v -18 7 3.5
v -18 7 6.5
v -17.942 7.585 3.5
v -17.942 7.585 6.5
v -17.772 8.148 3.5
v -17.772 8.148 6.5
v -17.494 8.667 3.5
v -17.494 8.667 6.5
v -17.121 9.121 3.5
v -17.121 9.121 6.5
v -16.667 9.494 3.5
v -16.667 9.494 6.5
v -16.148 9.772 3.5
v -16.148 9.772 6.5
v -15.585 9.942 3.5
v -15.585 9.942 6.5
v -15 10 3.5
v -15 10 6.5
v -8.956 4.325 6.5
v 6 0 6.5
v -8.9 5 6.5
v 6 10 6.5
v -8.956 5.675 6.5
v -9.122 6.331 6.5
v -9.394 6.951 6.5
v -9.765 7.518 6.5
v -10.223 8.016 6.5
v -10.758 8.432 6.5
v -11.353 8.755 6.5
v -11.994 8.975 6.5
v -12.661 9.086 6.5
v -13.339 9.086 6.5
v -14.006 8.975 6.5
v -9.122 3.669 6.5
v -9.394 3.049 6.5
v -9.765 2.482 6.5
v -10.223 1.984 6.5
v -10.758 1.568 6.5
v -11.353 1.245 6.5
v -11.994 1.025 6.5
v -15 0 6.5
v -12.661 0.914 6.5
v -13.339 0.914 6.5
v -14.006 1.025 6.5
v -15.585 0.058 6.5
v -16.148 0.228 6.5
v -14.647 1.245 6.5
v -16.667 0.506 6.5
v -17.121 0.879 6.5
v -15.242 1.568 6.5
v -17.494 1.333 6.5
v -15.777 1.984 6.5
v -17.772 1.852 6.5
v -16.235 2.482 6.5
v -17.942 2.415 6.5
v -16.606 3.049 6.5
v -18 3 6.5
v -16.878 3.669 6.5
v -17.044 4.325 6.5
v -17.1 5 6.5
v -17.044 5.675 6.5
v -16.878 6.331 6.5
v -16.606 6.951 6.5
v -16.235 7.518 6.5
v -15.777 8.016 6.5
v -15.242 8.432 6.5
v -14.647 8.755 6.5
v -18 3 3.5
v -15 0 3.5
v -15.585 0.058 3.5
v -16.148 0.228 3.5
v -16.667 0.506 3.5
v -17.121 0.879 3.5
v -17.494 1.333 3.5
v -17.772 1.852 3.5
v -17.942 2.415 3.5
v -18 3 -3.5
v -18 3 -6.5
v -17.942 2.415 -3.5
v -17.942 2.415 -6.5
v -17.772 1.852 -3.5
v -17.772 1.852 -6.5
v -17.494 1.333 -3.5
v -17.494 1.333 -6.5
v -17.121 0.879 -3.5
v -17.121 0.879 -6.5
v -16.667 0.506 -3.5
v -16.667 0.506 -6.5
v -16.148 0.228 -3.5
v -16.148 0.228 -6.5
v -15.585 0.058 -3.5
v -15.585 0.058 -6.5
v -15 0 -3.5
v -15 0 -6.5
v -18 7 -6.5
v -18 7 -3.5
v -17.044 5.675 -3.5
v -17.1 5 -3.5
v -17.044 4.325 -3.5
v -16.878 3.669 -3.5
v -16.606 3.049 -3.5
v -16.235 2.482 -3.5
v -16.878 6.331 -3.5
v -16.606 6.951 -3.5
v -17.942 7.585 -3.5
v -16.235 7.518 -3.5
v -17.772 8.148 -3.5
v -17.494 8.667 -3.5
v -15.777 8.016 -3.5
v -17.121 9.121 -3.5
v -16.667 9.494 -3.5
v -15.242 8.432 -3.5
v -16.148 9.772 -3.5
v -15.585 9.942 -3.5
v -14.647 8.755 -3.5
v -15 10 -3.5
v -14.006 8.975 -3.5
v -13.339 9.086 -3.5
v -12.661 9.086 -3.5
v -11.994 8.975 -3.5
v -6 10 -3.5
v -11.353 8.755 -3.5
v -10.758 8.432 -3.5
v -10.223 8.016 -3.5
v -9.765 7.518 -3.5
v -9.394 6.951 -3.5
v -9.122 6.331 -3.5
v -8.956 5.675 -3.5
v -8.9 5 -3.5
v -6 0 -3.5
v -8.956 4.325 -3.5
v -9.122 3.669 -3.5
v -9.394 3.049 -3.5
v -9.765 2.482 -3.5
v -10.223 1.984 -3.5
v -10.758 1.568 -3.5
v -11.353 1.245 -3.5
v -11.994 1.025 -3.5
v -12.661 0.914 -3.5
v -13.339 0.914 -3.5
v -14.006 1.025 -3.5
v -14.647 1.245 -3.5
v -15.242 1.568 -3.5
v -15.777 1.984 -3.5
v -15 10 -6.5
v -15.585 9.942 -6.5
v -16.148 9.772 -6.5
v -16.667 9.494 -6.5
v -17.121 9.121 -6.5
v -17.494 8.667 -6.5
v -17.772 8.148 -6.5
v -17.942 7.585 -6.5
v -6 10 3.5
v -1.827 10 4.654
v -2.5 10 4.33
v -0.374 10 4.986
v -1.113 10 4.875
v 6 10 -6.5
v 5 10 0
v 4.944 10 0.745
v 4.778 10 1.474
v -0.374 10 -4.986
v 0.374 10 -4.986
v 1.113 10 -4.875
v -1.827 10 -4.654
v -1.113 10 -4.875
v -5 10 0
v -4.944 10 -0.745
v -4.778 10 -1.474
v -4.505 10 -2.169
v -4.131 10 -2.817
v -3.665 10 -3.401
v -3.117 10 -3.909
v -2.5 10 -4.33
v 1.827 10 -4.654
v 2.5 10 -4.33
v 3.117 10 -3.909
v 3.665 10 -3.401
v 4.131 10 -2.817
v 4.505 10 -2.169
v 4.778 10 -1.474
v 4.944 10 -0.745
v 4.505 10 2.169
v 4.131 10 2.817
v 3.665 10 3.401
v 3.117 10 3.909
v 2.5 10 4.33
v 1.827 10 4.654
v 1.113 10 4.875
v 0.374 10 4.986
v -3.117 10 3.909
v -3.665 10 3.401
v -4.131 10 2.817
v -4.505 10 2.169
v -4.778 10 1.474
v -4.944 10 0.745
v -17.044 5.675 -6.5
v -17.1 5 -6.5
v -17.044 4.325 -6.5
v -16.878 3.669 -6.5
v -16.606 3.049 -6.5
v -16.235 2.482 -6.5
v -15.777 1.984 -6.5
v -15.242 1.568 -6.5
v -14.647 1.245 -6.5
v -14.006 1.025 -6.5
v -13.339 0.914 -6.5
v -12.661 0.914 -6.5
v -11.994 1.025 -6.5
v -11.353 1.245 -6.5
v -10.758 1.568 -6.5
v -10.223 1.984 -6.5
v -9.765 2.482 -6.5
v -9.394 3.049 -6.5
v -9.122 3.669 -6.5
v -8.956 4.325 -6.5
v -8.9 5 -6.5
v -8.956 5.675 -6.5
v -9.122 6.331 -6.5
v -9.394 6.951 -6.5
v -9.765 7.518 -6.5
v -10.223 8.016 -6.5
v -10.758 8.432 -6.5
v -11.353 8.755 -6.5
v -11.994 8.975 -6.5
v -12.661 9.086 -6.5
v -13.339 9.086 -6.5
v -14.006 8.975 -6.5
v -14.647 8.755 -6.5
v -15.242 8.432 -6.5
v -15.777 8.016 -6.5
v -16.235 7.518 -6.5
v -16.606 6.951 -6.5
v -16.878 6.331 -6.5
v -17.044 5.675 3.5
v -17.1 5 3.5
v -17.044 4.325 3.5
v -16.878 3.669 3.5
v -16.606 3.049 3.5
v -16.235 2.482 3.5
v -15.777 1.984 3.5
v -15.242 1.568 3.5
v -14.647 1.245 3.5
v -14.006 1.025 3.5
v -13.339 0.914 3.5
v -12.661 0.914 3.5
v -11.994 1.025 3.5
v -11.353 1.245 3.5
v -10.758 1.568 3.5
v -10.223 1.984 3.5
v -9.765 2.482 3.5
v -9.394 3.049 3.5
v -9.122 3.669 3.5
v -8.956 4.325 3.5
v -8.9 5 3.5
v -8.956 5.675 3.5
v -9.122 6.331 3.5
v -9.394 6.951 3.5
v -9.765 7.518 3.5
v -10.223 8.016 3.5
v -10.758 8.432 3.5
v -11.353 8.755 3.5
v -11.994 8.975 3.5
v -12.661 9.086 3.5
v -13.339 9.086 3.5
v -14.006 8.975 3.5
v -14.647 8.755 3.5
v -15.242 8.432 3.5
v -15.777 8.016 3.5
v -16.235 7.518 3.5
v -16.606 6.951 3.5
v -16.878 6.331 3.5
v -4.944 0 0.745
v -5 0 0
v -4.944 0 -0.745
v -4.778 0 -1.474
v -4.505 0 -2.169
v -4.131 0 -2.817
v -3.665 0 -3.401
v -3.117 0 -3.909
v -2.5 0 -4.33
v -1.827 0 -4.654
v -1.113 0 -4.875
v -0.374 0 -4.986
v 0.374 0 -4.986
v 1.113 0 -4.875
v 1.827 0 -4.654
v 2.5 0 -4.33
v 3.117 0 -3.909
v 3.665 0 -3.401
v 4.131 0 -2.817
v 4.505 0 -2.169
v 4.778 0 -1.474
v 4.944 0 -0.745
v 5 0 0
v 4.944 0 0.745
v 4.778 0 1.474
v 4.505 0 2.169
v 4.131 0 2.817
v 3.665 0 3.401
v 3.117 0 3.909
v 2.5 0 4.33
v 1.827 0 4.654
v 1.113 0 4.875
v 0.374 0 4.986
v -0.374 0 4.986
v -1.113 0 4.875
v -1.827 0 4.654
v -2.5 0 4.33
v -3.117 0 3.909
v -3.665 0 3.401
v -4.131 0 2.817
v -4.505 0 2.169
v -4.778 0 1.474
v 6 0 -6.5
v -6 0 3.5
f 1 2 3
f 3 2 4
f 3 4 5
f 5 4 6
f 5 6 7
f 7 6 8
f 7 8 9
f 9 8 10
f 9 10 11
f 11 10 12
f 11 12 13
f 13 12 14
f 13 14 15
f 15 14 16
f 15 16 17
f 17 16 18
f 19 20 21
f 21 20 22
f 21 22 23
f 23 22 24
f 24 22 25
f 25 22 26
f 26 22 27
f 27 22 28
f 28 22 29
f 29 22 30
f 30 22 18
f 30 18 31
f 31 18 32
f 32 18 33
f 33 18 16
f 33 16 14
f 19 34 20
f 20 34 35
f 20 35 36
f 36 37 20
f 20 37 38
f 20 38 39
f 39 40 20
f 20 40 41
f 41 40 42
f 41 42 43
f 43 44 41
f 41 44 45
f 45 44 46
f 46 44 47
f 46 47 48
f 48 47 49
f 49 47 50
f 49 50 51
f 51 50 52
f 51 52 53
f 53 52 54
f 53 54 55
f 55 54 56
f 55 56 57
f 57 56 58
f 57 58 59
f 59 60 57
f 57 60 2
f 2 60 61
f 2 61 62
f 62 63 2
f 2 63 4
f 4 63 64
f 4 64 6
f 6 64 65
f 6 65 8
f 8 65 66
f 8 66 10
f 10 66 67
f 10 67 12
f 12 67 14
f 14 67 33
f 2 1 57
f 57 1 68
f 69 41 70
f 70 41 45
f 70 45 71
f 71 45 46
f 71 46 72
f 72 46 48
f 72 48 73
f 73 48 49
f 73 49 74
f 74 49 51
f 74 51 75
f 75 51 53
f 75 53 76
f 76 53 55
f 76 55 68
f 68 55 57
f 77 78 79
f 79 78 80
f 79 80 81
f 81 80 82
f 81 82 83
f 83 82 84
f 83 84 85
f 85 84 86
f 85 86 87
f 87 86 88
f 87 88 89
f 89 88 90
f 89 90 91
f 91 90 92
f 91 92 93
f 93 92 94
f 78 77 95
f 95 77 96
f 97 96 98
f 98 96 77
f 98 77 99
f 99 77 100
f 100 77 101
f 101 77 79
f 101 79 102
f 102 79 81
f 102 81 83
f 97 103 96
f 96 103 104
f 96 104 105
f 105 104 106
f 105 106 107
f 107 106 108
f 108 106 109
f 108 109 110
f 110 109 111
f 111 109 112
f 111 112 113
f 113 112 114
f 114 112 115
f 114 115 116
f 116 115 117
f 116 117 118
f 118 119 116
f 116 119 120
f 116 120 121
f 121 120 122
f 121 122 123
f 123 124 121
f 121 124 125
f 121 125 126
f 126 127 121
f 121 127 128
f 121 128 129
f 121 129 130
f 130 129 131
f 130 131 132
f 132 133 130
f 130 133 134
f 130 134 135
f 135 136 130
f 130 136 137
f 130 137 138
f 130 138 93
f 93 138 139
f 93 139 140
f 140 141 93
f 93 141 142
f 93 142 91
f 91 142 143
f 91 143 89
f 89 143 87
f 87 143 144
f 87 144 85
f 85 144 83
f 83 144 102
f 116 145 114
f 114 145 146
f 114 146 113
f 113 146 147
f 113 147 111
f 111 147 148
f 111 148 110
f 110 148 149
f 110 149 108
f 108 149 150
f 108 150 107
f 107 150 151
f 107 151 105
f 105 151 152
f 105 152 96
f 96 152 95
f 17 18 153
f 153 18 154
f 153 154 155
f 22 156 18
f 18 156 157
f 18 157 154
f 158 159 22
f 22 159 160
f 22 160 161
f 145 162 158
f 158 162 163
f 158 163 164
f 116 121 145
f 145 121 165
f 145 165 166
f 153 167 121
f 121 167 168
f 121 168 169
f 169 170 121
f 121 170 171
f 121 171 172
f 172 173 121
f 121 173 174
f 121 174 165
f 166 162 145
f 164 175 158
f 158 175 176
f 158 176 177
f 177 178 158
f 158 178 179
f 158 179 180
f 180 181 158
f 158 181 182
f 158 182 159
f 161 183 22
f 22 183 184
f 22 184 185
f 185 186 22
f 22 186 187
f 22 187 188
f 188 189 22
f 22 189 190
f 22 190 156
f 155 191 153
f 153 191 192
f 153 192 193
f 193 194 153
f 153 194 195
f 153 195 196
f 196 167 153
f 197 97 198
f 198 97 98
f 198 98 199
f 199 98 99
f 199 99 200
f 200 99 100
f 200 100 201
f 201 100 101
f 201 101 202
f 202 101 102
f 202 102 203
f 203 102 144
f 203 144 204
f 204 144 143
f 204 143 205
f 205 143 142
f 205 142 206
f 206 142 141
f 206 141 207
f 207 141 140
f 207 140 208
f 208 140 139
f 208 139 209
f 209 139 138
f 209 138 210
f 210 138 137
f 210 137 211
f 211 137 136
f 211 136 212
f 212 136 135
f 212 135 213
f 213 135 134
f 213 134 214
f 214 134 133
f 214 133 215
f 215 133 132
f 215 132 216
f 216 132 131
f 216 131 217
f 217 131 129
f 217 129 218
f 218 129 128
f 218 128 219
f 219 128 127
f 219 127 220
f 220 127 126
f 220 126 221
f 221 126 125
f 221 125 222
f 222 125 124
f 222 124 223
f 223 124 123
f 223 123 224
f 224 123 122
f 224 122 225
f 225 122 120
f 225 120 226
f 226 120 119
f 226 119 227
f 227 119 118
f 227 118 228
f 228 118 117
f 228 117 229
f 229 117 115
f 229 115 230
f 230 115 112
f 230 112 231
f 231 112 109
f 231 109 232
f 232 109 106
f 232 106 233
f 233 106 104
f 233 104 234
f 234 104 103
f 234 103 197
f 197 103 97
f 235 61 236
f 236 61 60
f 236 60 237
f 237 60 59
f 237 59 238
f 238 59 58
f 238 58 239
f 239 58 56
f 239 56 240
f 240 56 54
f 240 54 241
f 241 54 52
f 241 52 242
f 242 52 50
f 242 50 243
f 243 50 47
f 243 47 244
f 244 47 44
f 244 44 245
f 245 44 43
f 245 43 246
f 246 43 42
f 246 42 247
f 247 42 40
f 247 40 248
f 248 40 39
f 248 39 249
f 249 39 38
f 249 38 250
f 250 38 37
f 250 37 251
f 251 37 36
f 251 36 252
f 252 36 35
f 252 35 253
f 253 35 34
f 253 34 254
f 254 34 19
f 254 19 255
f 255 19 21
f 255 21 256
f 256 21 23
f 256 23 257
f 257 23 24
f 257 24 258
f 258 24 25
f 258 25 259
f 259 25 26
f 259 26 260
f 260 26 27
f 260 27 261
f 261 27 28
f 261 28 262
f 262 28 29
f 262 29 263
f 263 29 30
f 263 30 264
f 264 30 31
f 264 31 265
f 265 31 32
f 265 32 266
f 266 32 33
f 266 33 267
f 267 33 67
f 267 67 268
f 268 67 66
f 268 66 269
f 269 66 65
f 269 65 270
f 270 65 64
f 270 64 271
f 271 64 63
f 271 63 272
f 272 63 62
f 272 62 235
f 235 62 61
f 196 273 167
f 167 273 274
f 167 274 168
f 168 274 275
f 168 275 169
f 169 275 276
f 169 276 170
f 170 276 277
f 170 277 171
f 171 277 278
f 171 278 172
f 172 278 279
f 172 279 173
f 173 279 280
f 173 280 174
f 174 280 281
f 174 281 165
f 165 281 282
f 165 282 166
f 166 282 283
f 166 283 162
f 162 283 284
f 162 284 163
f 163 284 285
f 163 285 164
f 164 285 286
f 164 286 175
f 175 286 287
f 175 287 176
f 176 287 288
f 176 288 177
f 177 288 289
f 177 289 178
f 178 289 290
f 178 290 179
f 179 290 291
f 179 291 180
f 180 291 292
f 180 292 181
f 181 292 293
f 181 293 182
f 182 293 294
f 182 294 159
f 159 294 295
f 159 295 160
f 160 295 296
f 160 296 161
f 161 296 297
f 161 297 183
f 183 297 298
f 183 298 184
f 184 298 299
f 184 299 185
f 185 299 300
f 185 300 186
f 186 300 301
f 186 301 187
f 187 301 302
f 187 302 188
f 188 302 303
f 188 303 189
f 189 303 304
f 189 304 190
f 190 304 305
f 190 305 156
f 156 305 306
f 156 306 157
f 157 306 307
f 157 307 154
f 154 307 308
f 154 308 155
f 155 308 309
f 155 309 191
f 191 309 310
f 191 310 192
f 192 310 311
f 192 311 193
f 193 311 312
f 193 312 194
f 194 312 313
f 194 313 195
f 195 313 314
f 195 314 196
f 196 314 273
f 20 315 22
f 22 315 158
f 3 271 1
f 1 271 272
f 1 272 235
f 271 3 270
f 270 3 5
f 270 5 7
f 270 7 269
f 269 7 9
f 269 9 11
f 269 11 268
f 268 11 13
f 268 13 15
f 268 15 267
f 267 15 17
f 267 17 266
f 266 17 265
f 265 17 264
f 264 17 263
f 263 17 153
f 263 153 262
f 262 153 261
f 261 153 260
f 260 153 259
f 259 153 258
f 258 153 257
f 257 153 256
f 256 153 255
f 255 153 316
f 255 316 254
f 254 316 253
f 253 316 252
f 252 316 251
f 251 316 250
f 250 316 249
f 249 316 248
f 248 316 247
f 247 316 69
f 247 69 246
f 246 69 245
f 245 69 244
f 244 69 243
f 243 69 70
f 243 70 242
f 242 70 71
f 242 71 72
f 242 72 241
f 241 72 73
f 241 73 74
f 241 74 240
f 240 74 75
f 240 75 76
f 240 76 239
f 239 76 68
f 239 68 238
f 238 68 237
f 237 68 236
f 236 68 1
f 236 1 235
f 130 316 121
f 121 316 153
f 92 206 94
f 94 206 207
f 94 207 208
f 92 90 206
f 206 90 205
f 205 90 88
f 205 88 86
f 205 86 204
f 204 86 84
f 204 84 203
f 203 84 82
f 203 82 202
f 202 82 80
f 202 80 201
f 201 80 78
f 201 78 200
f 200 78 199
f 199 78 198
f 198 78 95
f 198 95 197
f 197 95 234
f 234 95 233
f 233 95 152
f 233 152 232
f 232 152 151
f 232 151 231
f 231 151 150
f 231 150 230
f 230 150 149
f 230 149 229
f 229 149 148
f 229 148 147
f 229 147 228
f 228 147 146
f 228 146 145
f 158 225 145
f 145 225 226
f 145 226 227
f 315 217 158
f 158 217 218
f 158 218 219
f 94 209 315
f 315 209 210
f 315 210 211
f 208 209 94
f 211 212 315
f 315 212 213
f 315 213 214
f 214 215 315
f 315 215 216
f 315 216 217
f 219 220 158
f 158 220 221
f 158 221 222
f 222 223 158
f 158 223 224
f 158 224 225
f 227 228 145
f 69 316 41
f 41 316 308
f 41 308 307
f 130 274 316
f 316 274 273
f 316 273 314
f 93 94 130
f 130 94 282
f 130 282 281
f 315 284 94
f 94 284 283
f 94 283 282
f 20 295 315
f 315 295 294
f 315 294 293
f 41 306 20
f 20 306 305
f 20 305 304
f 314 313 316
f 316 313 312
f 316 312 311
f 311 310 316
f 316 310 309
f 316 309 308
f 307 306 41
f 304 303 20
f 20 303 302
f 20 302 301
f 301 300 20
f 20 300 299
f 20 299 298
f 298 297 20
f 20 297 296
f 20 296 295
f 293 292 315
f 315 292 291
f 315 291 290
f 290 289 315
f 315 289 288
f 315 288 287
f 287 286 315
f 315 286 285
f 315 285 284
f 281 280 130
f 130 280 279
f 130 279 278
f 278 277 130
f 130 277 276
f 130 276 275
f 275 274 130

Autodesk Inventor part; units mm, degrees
ref_plane "YZ Plane" through (0, 0, 0) normal (1, 0, 0) x (0, 1, 0)
ref_plane "XZ Plane" through (0, 0, 0) normal (0, 1, 0) x (-1, 0, 0)
ref_plane "XY Plane" through (0, 0, 0) normal (0, 0, 1) x (1, 0, 0)
sketch "Szkic1" plane through (0, 0, 0) normal (0, 1, 0) x (-1, 0, 0)
  circle A0 centre (0, 0) radius 5
  line L0 (-6, 6.5) -> (6, 6.5)
  line L1 (6, 6.5) -> (6, -6.5)
  line L2 (6, -6.5) -> (-6, -6.5)
  line L3 (-6, -6.5) -> (-6, 6.5)
  line L4 (-6, 6.5) -> (6, -6.5) construction
  line L5 (6, 6.5) -> (-6, -6.5) construction
  line L6 (6, 6.5) -> (18, 6.5)
  line L7 (18, 6.5) -> (18, 3.5)
  line L8 (18, 3.5) -> (6, 3.5)
  line L9 (6, 3.5) -> (6, 6.5)
  line L10 (6, -6.5) -> (18, -6.5)
  line L11 (18, -6.5) -> (18, -3.5)
  line L12 (18, -3.5) -> (6, -3.5)
  line L13 (6, -3.5) -> (6, -6.5)
  dimension "d0" = 10
  dimension "d1" = 12
  dimension "d2" = 13
  dimension "d8" = 12
  dimension "d9" = 3
  dimension "d10" = 3
extrude "Wyciągnięcie proste1" add sketch "Szkic1" along normal blind 10
thread "Gwint1" size "M10x1.5" class "6H" standard "ANSI Metric M Profile" full length
sketch "Szkic2" plane through (-18, 0, 6.5) normal (0, 0, 1) x (1, 0, 0)
  line L0 (0, 0) -> (0, 10) projected
  line L1 (12, 0) -> (12, 10) projected
  circle A0 centre (5, 5) radius 4.1
  line L2 (0, 0) -> (24, 0) projected
  point P0 (18, 0)
  dimension "d11" = 8.2
  dimension "d16" = 7
  dimension "d17" = 5
extrude "Wyciągnięcie proste2" cut sketch "Szkic2" against normal blind 16.75
fillet "Zaokrąglenie2" radius 3 4 edges at (-18, 10, -5) (-18, 0, -5) (-18, 0, 5) (-18, 10, 5)
properties part number "konik"
